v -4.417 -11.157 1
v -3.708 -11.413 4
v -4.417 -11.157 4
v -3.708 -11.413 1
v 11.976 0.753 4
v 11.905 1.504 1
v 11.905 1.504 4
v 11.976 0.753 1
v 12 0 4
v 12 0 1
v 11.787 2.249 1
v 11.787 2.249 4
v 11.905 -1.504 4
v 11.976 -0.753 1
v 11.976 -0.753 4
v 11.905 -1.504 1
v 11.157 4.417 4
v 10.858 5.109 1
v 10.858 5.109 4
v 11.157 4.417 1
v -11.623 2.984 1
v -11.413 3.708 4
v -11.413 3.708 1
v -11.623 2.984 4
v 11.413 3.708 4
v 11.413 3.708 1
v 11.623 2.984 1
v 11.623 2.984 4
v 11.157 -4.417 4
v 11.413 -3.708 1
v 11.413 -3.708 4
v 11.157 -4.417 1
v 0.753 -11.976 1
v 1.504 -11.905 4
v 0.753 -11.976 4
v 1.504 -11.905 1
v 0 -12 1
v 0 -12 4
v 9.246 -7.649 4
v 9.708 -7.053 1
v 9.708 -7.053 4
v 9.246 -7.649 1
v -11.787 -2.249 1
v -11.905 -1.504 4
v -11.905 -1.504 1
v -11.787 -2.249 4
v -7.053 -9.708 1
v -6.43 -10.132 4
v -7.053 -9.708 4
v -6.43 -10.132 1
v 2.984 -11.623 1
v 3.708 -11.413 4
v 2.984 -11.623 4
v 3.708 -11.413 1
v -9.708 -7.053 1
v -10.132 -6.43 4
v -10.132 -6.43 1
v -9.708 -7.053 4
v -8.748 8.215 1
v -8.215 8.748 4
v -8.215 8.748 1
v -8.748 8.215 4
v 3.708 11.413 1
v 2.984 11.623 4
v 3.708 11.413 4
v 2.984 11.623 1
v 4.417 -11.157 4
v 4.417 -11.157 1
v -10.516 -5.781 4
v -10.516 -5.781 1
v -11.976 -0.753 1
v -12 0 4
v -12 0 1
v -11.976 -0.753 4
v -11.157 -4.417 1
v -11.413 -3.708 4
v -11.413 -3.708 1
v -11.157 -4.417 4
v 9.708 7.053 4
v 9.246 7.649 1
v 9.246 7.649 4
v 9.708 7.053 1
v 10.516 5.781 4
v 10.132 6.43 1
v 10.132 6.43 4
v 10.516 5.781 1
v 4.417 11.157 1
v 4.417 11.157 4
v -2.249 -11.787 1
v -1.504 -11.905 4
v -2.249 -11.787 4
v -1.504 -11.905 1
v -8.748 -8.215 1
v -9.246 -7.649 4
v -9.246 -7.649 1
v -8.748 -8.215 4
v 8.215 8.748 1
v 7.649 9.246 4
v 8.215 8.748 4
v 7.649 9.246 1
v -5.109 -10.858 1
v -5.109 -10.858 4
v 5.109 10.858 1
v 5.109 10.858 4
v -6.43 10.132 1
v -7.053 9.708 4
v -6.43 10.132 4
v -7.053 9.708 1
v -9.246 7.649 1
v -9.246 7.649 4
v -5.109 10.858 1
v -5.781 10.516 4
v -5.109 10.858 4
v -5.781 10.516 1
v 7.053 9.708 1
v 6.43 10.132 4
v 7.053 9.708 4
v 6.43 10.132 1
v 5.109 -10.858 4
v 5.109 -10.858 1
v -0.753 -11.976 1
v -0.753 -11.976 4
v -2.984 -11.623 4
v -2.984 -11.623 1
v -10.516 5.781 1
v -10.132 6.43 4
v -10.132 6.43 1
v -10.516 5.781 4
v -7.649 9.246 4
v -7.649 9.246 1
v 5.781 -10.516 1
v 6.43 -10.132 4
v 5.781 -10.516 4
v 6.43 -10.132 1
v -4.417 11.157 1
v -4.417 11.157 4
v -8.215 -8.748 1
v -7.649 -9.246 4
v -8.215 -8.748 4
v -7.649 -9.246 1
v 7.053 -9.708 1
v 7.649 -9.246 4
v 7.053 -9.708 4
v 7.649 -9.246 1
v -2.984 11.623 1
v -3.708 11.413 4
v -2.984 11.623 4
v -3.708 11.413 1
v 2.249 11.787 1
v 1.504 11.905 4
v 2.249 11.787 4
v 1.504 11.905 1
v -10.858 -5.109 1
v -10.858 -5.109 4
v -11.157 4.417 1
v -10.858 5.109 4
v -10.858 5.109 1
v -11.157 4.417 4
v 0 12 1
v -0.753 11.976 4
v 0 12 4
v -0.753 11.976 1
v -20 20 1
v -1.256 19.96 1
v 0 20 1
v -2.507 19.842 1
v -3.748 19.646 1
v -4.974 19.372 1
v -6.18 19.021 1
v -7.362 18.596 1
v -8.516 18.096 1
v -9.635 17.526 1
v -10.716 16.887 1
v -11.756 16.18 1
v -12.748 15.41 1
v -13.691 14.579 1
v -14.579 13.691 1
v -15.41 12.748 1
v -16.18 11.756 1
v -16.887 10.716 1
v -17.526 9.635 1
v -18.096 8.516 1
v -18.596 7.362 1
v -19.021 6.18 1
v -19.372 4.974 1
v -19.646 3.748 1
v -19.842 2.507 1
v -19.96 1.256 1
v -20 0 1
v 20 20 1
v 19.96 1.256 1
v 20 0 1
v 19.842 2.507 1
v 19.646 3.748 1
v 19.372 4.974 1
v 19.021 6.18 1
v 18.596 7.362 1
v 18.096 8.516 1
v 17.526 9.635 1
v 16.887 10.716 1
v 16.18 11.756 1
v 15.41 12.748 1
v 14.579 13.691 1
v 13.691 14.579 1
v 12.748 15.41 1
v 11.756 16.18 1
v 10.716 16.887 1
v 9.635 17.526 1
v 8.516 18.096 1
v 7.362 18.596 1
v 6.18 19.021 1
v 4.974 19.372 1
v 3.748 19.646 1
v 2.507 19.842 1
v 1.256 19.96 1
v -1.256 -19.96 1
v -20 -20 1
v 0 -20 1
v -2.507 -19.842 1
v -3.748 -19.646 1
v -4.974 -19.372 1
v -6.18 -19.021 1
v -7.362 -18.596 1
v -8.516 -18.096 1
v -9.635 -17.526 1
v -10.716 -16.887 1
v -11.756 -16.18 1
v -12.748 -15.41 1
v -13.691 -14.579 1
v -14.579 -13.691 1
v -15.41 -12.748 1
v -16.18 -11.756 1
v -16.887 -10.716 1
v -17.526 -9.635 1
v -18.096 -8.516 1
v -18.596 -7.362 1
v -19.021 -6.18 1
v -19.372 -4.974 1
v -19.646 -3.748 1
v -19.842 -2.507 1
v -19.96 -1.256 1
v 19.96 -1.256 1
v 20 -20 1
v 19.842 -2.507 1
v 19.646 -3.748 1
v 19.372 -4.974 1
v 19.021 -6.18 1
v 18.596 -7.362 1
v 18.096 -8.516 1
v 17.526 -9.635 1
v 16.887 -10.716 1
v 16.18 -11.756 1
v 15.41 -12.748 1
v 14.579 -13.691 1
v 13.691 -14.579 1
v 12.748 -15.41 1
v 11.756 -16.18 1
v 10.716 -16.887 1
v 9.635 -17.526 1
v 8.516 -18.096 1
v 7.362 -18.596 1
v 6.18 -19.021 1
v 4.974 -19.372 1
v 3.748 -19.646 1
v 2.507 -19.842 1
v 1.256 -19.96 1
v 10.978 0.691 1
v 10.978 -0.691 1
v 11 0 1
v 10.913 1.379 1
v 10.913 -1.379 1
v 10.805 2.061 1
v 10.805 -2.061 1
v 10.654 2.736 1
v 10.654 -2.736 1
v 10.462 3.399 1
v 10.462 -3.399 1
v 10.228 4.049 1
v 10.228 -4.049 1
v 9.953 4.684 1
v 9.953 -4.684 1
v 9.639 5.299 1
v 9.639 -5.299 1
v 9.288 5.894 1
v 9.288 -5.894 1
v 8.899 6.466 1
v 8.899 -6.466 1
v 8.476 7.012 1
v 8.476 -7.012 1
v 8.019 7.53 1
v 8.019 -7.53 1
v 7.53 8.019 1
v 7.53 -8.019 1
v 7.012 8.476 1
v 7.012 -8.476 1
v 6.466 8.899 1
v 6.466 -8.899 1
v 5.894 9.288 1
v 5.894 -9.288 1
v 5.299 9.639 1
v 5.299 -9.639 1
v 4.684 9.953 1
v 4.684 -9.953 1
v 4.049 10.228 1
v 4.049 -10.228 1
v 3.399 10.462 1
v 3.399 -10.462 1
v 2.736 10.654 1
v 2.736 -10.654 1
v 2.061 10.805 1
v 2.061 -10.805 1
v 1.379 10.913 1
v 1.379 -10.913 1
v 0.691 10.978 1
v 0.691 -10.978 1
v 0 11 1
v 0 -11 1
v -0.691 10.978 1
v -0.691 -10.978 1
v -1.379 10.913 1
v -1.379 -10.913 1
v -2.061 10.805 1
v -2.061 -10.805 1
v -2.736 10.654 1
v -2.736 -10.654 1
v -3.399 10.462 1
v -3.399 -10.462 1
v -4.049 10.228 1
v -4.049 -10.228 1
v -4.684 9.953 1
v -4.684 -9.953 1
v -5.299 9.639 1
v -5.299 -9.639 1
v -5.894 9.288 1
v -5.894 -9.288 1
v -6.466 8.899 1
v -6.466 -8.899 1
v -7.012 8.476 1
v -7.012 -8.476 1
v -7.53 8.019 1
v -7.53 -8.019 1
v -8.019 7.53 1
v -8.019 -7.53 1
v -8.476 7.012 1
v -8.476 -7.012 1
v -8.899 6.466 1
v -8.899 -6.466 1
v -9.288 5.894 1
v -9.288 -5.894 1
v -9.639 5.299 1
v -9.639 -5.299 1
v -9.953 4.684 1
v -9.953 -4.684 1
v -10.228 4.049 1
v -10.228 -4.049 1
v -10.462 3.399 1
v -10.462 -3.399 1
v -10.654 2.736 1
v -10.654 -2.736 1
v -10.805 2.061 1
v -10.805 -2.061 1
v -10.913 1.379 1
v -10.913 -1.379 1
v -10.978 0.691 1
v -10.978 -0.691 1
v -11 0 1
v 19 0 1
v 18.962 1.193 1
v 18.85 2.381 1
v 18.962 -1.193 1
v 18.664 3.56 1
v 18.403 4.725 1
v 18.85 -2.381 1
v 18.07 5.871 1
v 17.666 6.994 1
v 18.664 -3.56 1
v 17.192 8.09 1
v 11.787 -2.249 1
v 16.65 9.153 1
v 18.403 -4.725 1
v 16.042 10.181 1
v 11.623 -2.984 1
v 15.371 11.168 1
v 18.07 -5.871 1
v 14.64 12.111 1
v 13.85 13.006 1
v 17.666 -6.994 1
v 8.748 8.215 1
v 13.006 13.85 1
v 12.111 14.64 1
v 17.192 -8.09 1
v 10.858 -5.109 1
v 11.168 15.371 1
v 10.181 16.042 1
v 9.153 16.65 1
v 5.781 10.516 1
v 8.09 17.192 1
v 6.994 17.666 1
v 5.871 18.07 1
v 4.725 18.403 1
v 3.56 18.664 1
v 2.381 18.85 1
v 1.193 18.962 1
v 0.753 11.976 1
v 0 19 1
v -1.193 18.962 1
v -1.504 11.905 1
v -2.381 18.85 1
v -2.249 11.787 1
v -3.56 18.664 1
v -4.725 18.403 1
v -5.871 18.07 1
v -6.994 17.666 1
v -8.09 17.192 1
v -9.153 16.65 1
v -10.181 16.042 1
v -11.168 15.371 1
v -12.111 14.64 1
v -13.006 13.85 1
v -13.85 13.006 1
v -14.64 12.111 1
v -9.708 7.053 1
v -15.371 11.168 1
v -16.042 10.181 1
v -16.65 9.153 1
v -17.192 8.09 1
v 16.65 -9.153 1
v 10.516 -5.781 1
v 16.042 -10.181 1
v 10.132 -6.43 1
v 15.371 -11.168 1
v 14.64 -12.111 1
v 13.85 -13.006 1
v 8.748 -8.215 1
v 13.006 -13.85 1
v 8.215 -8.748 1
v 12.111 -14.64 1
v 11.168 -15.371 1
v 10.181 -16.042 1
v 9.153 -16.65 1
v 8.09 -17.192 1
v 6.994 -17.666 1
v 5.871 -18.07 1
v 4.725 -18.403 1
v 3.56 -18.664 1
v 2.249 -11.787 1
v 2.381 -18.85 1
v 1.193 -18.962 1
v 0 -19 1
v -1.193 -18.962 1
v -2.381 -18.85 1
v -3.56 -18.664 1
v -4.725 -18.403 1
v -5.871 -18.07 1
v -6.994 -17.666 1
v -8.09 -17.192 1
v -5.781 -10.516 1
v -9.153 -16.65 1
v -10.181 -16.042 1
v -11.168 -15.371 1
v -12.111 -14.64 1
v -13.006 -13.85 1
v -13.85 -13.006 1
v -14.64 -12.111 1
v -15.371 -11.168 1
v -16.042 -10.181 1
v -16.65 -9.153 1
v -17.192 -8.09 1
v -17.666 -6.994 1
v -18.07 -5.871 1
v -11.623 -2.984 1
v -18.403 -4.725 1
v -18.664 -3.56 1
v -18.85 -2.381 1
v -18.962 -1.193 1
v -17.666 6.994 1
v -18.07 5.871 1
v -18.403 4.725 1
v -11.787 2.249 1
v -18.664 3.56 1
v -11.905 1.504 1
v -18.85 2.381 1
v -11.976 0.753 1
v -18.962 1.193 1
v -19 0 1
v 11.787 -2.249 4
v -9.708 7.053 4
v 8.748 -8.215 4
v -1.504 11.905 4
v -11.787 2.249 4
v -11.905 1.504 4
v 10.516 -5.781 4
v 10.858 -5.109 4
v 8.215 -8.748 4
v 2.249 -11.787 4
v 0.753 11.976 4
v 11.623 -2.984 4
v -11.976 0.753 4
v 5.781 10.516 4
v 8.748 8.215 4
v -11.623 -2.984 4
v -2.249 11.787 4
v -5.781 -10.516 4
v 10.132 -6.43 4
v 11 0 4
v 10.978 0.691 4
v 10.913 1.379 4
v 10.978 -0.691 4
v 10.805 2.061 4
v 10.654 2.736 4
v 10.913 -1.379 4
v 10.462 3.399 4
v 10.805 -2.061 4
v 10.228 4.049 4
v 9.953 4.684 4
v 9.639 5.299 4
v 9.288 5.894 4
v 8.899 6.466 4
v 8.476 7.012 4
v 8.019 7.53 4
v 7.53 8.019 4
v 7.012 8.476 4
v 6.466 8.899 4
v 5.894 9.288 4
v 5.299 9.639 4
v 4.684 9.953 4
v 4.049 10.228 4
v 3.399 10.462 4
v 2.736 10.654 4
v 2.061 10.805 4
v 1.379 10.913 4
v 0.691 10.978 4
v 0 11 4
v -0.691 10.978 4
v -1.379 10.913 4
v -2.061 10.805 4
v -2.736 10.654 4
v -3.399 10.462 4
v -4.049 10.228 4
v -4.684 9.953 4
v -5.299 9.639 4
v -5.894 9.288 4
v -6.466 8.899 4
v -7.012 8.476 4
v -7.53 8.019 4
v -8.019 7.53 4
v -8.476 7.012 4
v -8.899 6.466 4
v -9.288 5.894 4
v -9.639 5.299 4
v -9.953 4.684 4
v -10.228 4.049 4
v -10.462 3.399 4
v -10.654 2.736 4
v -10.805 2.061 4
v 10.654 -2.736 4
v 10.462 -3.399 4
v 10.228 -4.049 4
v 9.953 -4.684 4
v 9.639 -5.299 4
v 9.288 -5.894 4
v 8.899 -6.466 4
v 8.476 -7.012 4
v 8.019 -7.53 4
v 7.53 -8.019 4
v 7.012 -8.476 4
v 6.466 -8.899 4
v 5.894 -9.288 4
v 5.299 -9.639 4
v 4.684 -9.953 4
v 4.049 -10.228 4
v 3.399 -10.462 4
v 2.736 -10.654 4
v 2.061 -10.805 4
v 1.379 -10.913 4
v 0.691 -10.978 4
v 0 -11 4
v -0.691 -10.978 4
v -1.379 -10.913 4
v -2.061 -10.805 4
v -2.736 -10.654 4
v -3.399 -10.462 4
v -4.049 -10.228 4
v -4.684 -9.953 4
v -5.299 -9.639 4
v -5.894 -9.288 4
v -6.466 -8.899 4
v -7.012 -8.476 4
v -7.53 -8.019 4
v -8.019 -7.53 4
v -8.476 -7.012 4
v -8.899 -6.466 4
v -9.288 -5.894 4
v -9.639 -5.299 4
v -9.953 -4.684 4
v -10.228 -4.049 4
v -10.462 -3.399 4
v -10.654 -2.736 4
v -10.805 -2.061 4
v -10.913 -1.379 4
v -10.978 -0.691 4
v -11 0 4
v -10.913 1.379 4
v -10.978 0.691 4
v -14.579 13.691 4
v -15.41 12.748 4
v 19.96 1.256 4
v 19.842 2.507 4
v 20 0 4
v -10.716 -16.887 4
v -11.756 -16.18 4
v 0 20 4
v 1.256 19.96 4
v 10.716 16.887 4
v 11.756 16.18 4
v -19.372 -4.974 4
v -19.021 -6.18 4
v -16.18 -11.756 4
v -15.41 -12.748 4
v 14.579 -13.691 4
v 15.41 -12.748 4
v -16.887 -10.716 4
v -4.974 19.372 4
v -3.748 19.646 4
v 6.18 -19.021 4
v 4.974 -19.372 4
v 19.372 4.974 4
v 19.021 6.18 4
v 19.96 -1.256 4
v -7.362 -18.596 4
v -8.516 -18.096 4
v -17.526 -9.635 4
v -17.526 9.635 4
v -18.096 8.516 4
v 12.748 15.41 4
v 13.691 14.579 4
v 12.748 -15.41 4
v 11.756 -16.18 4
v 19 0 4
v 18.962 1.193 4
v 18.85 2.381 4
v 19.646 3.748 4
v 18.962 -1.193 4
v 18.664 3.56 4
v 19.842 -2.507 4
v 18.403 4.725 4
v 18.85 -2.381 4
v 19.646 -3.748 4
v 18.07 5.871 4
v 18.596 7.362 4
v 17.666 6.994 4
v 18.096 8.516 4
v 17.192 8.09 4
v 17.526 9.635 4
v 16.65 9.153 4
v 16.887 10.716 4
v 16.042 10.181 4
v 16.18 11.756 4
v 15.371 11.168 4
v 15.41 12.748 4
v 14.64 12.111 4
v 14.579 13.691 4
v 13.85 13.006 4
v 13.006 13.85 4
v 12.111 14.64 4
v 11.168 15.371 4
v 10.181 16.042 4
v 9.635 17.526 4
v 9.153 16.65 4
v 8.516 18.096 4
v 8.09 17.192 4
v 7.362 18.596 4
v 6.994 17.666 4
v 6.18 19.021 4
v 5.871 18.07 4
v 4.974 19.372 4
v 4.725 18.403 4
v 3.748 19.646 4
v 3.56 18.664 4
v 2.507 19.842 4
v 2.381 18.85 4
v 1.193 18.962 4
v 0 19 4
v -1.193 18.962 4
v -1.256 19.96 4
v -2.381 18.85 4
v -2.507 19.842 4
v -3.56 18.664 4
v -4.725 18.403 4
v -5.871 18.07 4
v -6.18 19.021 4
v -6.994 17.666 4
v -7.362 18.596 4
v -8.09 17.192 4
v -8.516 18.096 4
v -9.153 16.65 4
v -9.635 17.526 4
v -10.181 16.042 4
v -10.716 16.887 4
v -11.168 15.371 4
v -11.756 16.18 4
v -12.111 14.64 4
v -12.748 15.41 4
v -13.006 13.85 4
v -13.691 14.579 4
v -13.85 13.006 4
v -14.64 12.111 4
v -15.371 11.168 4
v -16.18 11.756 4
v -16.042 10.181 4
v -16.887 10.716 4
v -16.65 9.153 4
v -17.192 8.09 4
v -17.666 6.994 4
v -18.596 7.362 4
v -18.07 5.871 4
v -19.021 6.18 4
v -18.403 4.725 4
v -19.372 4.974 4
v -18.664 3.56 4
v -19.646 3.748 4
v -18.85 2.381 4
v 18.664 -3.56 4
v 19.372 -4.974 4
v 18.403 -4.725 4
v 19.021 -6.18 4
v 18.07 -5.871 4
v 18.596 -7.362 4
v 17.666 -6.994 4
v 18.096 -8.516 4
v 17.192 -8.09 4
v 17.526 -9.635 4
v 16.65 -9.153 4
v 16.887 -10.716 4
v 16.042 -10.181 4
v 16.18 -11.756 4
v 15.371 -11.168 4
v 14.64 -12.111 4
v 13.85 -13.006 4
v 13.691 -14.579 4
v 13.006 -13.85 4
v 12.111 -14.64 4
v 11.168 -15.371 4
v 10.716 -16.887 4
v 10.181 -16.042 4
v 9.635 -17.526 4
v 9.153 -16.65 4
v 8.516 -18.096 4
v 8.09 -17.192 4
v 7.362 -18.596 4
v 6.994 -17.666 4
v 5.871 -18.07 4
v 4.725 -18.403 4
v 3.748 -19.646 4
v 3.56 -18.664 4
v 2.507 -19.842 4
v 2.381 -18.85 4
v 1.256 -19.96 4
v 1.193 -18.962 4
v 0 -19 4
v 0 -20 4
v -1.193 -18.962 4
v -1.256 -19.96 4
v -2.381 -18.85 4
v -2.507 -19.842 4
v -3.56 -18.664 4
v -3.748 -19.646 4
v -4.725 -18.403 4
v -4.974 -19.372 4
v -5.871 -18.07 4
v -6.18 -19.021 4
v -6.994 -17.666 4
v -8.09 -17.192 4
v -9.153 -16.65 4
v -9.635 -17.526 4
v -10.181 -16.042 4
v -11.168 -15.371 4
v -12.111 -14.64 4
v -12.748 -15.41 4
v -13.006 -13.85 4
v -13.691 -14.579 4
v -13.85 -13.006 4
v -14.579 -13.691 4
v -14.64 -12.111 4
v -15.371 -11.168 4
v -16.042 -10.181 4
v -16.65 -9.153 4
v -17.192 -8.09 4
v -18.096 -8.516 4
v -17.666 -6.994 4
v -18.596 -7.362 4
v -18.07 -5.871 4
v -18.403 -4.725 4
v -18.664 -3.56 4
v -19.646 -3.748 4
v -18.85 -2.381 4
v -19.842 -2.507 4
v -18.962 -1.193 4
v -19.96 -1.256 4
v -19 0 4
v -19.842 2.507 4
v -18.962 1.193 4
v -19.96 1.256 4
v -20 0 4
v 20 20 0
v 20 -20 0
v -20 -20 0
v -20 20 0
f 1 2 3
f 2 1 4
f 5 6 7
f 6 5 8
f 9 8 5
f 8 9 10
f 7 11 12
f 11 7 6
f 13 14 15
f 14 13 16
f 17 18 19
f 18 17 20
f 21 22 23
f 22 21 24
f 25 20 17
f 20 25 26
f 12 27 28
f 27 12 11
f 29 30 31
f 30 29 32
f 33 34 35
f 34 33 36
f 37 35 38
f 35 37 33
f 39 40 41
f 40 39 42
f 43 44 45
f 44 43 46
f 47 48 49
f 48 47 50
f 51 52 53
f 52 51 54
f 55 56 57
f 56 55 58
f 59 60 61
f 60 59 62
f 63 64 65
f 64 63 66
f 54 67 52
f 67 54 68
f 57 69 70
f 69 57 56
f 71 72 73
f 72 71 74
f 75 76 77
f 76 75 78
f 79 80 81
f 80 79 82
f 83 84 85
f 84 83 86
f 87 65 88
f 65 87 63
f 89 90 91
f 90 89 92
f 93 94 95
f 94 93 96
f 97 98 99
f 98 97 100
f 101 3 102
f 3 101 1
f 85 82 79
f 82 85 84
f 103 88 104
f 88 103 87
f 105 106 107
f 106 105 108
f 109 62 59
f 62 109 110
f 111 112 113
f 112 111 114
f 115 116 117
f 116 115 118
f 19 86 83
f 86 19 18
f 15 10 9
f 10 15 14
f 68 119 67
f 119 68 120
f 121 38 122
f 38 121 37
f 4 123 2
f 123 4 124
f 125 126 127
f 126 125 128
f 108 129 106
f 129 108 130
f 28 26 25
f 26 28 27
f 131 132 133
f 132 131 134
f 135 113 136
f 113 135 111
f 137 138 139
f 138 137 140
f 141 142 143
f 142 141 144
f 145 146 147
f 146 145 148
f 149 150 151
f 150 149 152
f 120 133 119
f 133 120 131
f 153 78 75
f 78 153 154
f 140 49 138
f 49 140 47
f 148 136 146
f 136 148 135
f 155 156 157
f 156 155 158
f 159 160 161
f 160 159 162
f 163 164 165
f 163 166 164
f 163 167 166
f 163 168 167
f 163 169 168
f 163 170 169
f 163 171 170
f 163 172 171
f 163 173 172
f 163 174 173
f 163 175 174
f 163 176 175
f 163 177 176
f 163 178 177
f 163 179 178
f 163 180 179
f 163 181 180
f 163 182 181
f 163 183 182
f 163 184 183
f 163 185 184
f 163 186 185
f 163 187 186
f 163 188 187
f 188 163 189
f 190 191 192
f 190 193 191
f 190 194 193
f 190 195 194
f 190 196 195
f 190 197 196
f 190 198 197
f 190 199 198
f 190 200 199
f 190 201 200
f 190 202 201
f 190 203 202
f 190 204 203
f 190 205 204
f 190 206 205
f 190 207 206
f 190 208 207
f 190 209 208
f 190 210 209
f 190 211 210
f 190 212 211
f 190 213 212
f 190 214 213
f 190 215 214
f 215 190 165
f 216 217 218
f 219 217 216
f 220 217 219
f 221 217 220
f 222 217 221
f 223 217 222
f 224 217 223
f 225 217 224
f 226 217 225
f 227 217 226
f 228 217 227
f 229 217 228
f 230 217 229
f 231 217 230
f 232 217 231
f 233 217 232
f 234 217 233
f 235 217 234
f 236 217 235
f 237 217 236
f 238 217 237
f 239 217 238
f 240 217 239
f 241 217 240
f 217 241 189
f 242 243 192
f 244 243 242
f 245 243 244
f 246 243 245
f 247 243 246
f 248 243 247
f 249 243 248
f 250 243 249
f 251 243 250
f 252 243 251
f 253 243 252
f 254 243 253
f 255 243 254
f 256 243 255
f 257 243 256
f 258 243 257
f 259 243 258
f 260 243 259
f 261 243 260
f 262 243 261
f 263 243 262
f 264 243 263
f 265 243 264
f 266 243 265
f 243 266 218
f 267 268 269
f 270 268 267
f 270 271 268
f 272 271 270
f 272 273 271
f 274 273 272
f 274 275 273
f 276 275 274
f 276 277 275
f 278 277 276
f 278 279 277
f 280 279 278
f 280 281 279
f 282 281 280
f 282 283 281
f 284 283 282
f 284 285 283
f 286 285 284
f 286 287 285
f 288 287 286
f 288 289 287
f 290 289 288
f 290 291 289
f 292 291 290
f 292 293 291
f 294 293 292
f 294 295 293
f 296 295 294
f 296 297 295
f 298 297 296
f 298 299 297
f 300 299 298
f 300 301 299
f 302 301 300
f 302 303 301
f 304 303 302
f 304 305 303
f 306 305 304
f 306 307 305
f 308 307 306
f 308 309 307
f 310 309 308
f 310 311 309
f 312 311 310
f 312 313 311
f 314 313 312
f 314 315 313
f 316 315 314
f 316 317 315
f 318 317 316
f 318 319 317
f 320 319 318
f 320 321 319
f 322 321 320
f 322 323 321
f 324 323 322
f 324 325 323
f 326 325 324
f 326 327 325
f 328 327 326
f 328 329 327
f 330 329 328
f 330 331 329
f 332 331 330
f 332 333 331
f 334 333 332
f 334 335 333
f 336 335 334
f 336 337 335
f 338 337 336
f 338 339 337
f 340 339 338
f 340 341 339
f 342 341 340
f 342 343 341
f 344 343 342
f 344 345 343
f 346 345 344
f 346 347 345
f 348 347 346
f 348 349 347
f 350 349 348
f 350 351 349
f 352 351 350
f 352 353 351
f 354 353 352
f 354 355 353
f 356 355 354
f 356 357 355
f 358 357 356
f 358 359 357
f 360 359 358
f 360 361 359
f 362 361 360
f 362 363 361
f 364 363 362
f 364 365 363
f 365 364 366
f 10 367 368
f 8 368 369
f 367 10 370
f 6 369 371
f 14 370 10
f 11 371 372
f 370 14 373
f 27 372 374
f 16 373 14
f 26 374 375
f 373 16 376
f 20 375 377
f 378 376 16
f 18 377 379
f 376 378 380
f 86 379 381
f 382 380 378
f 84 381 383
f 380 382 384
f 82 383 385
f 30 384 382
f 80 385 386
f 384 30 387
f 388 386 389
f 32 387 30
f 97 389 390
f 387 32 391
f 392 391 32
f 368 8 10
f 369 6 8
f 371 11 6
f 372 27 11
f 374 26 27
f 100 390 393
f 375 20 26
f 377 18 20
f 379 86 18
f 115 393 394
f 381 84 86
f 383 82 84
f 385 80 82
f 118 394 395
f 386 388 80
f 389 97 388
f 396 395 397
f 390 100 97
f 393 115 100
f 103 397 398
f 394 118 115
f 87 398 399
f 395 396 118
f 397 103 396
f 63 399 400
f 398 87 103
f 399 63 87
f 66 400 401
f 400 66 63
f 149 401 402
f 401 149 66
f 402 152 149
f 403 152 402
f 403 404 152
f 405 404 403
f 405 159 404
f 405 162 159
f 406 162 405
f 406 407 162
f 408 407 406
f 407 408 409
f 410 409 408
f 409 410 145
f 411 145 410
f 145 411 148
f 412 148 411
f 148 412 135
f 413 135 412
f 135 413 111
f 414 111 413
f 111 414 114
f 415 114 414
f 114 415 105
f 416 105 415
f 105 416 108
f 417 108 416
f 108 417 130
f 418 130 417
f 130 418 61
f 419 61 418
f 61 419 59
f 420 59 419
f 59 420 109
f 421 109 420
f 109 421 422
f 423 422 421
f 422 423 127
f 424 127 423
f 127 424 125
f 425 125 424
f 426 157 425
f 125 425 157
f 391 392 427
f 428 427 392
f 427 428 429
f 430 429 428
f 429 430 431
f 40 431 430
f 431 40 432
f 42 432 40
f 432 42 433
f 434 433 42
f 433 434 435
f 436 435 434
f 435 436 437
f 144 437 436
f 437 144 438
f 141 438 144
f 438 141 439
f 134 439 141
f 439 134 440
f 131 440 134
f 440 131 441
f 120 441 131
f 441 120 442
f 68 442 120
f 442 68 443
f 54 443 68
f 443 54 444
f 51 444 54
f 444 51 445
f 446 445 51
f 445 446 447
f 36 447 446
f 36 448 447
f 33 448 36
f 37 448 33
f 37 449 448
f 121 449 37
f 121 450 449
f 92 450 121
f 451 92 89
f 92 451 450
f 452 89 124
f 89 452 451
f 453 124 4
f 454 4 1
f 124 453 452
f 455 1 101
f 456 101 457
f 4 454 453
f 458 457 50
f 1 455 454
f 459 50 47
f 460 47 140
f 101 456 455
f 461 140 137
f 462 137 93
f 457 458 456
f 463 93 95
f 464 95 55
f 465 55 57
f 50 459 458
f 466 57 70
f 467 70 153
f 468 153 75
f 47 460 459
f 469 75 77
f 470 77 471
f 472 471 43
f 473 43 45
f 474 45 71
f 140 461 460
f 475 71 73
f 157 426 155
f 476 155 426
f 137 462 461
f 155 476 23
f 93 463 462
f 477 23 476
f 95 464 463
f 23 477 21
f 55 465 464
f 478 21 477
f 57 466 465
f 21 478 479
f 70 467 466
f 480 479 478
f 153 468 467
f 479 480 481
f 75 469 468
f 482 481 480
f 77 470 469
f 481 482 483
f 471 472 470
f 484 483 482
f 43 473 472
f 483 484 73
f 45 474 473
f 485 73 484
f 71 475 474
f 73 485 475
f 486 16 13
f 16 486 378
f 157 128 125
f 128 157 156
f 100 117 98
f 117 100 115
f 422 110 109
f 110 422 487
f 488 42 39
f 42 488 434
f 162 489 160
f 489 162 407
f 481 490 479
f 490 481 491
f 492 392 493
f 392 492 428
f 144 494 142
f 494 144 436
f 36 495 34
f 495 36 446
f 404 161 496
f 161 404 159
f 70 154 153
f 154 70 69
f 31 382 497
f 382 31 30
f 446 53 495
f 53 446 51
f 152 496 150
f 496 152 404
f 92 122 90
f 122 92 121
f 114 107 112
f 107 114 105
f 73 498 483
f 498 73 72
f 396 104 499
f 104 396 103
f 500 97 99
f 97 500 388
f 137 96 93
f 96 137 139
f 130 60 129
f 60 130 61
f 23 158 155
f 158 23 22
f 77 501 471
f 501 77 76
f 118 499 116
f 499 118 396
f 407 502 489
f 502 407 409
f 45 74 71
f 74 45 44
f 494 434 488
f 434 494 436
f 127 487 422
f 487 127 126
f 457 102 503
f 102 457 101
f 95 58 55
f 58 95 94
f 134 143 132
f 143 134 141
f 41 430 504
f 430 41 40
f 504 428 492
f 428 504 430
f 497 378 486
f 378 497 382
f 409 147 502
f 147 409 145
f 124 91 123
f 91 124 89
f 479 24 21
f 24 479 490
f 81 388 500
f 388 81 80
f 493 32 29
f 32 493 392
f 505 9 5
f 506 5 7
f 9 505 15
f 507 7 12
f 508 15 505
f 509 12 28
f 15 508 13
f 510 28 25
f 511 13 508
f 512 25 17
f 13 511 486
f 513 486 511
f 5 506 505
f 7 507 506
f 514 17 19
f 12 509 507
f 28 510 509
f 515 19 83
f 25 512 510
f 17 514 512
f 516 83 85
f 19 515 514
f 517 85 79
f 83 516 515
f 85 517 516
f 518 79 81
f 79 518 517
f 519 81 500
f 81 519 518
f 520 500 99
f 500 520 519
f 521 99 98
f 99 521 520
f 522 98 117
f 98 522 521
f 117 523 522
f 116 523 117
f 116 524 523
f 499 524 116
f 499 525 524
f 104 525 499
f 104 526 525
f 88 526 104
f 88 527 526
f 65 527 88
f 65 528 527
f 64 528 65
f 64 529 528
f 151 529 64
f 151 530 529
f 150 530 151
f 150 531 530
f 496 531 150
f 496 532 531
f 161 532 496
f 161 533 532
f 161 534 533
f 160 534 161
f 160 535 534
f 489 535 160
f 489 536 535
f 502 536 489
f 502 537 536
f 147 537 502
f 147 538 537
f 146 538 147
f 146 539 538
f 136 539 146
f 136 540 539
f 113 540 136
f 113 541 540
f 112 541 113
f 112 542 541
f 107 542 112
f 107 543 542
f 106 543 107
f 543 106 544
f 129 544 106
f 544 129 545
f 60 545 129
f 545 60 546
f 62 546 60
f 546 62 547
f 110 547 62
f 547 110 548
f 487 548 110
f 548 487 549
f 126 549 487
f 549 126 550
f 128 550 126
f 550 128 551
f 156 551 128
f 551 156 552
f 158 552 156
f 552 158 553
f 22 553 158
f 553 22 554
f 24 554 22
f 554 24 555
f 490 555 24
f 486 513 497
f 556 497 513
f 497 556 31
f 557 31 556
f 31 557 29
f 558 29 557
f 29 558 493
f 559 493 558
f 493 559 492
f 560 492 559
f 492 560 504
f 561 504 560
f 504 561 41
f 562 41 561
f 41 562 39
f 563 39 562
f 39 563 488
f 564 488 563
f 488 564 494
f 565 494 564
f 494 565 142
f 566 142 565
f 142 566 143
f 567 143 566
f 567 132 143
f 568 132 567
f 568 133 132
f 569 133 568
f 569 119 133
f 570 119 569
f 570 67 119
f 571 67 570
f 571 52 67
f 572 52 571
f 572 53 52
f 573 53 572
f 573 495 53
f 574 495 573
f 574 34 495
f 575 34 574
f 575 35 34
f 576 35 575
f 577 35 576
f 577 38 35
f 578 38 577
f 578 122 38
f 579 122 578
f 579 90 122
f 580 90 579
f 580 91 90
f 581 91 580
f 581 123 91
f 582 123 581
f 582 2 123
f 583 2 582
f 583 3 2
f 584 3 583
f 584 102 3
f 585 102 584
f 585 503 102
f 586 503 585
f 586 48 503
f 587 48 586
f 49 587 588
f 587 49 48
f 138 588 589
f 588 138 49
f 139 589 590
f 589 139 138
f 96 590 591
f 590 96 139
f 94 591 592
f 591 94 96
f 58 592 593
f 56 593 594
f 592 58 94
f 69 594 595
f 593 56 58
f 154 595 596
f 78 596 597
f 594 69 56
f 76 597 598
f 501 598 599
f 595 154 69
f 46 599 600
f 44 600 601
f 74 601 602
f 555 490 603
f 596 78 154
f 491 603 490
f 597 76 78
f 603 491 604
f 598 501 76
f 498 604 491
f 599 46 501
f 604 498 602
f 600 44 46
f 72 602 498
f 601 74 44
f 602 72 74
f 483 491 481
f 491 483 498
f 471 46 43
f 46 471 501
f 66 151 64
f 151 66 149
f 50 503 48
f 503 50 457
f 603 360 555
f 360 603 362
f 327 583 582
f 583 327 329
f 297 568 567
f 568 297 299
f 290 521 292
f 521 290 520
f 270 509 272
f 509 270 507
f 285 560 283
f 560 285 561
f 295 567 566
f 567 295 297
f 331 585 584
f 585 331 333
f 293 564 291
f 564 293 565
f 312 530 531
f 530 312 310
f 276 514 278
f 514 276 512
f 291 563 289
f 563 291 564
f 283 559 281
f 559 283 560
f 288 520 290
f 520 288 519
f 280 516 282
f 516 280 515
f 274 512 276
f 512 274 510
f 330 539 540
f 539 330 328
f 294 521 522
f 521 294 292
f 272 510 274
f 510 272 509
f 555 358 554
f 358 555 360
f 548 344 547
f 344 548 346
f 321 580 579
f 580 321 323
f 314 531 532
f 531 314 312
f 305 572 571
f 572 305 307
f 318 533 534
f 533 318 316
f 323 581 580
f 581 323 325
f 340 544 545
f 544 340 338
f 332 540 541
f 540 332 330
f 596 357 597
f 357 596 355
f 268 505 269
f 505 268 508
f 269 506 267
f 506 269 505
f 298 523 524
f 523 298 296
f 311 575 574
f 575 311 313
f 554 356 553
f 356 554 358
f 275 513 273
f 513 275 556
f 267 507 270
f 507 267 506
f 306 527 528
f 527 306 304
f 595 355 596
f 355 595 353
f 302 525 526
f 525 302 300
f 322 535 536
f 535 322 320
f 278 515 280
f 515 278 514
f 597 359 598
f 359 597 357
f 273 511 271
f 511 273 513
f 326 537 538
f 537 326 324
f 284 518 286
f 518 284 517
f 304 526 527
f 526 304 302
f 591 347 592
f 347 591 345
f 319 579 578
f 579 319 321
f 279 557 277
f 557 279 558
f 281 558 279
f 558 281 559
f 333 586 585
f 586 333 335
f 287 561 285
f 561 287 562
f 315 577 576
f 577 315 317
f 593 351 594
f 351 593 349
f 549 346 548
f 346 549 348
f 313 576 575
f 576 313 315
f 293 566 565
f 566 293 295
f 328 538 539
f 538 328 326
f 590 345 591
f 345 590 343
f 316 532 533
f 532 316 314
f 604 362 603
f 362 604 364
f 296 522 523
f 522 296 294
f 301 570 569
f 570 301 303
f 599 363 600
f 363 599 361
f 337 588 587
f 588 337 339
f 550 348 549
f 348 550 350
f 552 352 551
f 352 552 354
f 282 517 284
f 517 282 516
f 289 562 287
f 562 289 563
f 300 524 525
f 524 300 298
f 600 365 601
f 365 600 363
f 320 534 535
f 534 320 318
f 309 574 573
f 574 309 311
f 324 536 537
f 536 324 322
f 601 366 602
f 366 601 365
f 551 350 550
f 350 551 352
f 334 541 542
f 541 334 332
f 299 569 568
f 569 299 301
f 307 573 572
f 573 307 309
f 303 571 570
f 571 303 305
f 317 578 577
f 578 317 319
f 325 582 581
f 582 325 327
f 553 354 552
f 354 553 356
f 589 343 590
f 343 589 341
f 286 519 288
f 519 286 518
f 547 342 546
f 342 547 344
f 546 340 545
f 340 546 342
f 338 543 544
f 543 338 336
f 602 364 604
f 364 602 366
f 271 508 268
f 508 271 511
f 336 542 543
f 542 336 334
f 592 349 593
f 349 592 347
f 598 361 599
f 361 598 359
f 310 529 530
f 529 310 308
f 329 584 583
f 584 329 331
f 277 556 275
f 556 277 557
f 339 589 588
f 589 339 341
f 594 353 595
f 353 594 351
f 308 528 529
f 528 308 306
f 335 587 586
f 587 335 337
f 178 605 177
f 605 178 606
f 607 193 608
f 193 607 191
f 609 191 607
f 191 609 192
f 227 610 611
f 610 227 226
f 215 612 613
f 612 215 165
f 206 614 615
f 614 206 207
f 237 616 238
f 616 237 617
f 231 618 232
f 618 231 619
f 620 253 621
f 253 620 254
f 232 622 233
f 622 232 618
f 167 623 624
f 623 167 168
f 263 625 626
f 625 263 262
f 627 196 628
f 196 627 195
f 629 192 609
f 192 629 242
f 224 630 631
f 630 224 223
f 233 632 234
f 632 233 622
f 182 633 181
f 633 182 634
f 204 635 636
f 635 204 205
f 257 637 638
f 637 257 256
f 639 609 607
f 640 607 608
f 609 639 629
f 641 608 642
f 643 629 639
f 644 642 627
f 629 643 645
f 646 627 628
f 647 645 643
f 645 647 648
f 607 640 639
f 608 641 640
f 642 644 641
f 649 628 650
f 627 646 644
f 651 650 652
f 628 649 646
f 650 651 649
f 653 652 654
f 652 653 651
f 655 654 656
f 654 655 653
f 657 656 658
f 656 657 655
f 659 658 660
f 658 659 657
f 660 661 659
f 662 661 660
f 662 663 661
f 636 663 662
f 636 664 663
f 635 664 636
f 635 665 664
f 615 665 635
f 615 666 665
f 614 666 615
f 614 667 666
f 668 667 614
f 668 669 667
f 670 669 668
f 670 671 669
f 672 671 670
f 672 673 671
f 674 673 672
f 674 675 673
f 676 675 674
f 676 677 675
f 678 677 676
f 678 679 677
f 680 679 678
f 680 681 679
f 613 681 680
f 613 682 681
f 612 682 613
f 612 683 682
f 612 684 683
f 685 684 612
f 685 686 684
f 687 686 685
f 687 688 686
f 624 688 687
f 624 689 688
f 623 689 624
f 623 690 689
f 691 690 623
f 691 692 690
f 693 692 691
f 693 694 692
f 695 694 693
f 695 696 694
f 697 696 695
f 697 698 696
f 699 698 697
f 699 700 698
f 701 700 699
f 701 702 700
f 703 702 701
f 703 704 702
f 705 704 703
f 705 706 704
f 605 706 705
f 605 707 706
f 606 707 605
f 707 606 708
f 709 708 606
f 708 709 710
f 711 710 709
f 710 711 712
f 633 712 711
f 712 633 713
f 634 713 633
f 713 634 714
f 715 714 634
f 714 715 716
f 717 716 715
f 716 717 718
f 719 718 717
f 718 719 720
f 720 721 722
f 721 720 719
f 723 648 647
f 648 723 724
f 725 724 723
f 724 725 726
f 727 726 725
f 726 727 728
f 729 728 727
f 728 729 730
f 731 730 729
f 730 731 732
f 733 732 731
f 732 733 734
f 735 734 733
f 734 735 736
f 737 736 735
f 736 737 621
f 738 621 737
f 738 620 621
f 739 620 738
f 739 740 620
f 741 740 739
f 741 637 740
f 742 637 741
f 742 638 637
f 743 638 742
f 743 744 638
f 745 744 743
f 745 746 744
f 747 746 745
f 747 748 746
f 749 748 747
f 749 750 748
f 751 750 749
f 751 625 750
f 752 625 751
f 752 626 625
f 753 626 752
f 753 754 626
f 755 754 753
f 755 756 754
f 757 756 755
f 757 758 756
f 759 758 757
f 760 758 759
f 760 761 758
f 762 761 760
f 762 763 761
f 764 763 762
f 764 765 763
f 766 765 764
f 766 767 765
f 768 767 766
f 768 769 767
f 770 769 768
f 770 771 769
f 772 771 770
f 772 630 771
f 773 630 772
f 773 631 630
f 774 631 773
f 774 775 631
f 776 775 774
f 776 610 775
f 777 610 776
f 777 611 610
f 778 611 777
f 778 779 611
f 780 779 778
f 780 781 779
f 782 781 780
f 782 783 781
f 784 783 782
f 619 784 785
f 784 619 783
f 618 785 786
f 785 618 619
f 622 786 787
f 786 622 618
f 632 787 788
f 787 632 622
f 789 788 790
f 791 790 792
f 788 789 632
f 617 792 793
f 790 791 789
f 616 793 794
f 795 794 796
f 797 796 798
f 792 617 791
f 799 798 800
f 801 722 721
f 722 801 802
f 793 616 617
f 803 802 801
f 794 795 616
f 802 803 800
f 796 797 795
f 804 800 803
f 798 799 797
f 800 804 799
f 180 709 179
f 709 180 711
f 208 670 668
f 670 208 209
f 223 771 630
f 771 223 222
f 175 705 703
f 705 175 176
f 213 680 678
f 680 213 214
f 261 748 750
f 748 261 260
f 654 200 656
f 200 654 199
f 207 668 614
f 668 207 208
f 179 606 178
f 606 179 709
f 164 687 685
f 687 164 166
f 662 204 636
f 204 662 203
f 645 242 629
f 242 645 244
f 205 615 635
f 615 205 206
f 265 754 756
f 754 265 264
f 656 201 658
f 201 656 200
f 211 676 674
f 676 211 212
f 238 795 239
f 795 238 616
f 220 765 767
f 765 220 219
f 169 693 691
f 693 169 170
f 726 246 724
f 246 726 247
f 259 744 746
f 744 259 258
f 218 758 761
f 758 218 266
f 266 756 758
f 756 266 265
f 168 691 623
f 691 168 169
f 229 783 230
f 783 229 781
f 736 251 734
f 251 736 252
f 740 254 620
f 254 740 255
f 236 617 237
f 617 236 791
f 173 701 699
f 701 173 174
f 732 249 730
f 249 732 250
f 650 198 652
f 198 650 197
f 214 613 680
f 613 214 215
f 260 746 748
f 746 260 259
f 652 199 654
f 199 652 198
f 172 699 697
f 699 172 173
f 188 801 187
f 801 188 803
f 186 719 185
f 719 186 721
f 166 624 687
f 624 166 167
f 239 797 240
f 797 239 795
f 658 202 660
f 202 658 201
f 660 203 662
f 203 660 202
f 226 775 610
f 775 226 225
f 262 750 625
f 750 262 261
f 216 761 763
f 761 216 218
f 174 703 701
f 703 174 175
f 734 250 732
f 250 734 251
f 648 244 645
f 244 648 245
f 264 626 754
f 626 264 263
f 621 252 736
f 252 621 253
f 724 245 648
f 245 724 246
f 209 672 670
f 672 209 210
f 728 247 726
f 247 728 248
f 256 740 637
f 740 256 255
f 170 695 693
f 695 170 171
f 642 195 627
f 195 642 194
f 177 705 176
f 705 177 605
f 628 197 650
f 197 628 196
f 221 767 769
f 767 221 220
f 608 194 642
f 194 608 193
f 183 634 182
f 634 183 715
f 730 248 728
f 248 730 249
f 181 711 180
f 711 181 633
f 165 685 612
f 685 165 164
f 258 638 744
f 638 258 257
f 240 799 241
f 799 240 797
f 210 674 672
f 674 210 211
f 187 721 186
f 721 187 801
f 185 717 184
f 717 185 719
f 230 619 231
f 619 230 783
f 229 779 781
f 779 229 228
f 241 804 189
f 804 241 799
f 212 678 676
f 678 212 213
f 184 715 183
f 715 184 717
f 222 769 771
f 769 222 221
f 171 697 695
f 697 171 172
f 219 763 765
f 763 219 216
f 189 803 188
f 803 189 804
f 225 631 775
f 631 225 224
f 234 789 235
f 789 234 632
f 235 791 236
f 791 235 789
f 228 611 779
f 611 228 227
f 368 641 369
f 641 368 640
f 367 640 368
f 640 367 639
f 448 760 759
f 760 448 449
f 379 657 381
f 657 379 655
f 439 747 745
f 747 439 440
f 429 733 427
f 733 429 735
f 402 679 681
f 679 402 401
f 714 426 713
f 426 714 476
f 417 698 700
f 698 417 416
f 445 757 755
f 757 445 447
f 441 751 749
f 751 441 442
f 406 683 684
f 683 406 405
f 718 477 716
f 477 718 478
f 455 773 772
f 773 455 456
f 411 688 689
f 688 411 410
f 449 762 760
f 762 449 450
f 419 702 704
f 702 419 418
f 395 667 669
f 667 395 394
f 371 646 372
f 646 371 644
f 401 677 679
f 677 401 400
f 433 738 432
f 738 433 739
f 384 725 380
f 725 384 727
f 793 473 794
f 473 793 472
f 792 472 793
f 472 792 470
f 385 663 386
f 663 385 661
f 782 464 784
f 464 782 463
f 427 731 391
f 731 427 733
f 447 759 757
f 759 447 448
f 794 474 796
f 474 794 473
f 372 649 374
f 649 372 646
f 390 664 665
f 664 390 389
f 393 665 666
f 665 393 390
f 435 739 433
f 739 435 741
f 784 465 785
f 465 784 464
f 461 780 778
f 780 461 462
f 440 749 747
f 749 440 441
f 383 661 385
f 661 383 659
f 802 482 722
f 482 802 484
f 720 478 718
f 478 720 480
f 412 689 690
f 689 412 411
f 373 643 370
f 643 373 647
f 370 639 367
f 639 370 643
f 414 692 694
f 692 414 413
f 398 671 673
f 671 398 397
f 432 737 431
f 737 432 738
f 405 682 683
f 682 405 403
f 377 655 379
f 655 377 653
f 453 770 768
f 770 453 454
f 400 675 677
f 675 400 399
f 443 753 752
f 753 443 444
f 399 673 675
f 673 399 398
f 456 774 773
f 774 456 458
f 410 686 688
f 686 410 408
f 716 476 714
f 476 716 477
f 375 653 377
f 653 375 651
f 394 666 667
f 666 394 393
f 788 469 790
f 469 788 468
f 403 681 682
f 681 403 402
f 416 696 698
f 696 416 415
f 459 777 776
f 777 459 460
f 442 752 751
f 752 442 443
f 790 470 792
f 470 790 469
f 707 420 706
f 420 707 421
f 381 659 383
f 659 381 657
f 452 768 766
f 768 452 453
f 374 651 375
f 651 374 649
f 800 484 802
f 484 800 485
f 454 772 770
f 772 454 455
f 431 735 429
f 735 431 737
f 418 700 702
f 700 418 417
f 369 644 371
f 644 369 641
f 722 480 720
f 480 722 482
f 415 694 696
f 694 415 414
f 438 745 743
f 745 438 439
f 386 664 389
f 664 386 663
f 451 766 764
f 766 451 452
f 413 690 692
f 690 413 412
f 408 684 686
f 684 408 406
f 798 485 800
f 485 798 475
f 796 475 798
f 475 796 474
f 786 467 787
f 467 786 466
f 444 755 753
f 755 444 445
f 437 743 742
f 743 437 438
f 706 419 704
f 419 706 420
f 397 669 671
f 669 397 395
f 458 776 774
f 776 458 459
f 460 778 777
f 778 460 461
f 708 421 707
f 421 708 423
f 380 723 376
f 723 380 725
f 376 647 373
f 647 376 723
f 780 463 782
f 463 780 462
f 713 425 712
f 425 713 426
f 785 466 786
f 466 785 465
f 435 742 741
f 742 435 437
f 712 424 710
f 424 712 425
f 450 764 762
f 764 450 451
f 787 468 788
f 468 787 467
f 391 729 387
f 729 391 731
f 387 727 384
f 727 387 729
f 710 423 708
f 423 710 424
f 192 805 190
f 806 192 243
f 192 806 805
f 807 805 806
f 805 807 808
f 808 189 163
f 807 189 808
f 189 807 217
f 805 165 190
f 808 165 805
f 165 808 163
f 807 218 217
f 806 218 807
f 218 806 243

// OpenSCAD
module aropq() {
  translate([0,0,1.5])
  difference() {
    cylinder (3, 12, 12, center=true, $fn=100);
    cylinder (6, 11, 11, center=true, $fn=100);
  };
}

module arogd() {
  translate([0,0,1.5])
  difference() {
    cylinder (3, 20, 20, center=true, $fn=100);
    cylinder (6, 19, 19, center=true, $fn=100);
  };
}


/*difference() {
  translate([-20, -20, 0])
    cube([40, 40, 8]);
  translate([0,0,5.01])
    cylinder (6, 10, 10, center=true, $fn=100);
};*/
translate([-20, -20, 0])
  cube([40, 40, 1]);
translate([0,0,1]) {
  aropq();
  arogd();
}
